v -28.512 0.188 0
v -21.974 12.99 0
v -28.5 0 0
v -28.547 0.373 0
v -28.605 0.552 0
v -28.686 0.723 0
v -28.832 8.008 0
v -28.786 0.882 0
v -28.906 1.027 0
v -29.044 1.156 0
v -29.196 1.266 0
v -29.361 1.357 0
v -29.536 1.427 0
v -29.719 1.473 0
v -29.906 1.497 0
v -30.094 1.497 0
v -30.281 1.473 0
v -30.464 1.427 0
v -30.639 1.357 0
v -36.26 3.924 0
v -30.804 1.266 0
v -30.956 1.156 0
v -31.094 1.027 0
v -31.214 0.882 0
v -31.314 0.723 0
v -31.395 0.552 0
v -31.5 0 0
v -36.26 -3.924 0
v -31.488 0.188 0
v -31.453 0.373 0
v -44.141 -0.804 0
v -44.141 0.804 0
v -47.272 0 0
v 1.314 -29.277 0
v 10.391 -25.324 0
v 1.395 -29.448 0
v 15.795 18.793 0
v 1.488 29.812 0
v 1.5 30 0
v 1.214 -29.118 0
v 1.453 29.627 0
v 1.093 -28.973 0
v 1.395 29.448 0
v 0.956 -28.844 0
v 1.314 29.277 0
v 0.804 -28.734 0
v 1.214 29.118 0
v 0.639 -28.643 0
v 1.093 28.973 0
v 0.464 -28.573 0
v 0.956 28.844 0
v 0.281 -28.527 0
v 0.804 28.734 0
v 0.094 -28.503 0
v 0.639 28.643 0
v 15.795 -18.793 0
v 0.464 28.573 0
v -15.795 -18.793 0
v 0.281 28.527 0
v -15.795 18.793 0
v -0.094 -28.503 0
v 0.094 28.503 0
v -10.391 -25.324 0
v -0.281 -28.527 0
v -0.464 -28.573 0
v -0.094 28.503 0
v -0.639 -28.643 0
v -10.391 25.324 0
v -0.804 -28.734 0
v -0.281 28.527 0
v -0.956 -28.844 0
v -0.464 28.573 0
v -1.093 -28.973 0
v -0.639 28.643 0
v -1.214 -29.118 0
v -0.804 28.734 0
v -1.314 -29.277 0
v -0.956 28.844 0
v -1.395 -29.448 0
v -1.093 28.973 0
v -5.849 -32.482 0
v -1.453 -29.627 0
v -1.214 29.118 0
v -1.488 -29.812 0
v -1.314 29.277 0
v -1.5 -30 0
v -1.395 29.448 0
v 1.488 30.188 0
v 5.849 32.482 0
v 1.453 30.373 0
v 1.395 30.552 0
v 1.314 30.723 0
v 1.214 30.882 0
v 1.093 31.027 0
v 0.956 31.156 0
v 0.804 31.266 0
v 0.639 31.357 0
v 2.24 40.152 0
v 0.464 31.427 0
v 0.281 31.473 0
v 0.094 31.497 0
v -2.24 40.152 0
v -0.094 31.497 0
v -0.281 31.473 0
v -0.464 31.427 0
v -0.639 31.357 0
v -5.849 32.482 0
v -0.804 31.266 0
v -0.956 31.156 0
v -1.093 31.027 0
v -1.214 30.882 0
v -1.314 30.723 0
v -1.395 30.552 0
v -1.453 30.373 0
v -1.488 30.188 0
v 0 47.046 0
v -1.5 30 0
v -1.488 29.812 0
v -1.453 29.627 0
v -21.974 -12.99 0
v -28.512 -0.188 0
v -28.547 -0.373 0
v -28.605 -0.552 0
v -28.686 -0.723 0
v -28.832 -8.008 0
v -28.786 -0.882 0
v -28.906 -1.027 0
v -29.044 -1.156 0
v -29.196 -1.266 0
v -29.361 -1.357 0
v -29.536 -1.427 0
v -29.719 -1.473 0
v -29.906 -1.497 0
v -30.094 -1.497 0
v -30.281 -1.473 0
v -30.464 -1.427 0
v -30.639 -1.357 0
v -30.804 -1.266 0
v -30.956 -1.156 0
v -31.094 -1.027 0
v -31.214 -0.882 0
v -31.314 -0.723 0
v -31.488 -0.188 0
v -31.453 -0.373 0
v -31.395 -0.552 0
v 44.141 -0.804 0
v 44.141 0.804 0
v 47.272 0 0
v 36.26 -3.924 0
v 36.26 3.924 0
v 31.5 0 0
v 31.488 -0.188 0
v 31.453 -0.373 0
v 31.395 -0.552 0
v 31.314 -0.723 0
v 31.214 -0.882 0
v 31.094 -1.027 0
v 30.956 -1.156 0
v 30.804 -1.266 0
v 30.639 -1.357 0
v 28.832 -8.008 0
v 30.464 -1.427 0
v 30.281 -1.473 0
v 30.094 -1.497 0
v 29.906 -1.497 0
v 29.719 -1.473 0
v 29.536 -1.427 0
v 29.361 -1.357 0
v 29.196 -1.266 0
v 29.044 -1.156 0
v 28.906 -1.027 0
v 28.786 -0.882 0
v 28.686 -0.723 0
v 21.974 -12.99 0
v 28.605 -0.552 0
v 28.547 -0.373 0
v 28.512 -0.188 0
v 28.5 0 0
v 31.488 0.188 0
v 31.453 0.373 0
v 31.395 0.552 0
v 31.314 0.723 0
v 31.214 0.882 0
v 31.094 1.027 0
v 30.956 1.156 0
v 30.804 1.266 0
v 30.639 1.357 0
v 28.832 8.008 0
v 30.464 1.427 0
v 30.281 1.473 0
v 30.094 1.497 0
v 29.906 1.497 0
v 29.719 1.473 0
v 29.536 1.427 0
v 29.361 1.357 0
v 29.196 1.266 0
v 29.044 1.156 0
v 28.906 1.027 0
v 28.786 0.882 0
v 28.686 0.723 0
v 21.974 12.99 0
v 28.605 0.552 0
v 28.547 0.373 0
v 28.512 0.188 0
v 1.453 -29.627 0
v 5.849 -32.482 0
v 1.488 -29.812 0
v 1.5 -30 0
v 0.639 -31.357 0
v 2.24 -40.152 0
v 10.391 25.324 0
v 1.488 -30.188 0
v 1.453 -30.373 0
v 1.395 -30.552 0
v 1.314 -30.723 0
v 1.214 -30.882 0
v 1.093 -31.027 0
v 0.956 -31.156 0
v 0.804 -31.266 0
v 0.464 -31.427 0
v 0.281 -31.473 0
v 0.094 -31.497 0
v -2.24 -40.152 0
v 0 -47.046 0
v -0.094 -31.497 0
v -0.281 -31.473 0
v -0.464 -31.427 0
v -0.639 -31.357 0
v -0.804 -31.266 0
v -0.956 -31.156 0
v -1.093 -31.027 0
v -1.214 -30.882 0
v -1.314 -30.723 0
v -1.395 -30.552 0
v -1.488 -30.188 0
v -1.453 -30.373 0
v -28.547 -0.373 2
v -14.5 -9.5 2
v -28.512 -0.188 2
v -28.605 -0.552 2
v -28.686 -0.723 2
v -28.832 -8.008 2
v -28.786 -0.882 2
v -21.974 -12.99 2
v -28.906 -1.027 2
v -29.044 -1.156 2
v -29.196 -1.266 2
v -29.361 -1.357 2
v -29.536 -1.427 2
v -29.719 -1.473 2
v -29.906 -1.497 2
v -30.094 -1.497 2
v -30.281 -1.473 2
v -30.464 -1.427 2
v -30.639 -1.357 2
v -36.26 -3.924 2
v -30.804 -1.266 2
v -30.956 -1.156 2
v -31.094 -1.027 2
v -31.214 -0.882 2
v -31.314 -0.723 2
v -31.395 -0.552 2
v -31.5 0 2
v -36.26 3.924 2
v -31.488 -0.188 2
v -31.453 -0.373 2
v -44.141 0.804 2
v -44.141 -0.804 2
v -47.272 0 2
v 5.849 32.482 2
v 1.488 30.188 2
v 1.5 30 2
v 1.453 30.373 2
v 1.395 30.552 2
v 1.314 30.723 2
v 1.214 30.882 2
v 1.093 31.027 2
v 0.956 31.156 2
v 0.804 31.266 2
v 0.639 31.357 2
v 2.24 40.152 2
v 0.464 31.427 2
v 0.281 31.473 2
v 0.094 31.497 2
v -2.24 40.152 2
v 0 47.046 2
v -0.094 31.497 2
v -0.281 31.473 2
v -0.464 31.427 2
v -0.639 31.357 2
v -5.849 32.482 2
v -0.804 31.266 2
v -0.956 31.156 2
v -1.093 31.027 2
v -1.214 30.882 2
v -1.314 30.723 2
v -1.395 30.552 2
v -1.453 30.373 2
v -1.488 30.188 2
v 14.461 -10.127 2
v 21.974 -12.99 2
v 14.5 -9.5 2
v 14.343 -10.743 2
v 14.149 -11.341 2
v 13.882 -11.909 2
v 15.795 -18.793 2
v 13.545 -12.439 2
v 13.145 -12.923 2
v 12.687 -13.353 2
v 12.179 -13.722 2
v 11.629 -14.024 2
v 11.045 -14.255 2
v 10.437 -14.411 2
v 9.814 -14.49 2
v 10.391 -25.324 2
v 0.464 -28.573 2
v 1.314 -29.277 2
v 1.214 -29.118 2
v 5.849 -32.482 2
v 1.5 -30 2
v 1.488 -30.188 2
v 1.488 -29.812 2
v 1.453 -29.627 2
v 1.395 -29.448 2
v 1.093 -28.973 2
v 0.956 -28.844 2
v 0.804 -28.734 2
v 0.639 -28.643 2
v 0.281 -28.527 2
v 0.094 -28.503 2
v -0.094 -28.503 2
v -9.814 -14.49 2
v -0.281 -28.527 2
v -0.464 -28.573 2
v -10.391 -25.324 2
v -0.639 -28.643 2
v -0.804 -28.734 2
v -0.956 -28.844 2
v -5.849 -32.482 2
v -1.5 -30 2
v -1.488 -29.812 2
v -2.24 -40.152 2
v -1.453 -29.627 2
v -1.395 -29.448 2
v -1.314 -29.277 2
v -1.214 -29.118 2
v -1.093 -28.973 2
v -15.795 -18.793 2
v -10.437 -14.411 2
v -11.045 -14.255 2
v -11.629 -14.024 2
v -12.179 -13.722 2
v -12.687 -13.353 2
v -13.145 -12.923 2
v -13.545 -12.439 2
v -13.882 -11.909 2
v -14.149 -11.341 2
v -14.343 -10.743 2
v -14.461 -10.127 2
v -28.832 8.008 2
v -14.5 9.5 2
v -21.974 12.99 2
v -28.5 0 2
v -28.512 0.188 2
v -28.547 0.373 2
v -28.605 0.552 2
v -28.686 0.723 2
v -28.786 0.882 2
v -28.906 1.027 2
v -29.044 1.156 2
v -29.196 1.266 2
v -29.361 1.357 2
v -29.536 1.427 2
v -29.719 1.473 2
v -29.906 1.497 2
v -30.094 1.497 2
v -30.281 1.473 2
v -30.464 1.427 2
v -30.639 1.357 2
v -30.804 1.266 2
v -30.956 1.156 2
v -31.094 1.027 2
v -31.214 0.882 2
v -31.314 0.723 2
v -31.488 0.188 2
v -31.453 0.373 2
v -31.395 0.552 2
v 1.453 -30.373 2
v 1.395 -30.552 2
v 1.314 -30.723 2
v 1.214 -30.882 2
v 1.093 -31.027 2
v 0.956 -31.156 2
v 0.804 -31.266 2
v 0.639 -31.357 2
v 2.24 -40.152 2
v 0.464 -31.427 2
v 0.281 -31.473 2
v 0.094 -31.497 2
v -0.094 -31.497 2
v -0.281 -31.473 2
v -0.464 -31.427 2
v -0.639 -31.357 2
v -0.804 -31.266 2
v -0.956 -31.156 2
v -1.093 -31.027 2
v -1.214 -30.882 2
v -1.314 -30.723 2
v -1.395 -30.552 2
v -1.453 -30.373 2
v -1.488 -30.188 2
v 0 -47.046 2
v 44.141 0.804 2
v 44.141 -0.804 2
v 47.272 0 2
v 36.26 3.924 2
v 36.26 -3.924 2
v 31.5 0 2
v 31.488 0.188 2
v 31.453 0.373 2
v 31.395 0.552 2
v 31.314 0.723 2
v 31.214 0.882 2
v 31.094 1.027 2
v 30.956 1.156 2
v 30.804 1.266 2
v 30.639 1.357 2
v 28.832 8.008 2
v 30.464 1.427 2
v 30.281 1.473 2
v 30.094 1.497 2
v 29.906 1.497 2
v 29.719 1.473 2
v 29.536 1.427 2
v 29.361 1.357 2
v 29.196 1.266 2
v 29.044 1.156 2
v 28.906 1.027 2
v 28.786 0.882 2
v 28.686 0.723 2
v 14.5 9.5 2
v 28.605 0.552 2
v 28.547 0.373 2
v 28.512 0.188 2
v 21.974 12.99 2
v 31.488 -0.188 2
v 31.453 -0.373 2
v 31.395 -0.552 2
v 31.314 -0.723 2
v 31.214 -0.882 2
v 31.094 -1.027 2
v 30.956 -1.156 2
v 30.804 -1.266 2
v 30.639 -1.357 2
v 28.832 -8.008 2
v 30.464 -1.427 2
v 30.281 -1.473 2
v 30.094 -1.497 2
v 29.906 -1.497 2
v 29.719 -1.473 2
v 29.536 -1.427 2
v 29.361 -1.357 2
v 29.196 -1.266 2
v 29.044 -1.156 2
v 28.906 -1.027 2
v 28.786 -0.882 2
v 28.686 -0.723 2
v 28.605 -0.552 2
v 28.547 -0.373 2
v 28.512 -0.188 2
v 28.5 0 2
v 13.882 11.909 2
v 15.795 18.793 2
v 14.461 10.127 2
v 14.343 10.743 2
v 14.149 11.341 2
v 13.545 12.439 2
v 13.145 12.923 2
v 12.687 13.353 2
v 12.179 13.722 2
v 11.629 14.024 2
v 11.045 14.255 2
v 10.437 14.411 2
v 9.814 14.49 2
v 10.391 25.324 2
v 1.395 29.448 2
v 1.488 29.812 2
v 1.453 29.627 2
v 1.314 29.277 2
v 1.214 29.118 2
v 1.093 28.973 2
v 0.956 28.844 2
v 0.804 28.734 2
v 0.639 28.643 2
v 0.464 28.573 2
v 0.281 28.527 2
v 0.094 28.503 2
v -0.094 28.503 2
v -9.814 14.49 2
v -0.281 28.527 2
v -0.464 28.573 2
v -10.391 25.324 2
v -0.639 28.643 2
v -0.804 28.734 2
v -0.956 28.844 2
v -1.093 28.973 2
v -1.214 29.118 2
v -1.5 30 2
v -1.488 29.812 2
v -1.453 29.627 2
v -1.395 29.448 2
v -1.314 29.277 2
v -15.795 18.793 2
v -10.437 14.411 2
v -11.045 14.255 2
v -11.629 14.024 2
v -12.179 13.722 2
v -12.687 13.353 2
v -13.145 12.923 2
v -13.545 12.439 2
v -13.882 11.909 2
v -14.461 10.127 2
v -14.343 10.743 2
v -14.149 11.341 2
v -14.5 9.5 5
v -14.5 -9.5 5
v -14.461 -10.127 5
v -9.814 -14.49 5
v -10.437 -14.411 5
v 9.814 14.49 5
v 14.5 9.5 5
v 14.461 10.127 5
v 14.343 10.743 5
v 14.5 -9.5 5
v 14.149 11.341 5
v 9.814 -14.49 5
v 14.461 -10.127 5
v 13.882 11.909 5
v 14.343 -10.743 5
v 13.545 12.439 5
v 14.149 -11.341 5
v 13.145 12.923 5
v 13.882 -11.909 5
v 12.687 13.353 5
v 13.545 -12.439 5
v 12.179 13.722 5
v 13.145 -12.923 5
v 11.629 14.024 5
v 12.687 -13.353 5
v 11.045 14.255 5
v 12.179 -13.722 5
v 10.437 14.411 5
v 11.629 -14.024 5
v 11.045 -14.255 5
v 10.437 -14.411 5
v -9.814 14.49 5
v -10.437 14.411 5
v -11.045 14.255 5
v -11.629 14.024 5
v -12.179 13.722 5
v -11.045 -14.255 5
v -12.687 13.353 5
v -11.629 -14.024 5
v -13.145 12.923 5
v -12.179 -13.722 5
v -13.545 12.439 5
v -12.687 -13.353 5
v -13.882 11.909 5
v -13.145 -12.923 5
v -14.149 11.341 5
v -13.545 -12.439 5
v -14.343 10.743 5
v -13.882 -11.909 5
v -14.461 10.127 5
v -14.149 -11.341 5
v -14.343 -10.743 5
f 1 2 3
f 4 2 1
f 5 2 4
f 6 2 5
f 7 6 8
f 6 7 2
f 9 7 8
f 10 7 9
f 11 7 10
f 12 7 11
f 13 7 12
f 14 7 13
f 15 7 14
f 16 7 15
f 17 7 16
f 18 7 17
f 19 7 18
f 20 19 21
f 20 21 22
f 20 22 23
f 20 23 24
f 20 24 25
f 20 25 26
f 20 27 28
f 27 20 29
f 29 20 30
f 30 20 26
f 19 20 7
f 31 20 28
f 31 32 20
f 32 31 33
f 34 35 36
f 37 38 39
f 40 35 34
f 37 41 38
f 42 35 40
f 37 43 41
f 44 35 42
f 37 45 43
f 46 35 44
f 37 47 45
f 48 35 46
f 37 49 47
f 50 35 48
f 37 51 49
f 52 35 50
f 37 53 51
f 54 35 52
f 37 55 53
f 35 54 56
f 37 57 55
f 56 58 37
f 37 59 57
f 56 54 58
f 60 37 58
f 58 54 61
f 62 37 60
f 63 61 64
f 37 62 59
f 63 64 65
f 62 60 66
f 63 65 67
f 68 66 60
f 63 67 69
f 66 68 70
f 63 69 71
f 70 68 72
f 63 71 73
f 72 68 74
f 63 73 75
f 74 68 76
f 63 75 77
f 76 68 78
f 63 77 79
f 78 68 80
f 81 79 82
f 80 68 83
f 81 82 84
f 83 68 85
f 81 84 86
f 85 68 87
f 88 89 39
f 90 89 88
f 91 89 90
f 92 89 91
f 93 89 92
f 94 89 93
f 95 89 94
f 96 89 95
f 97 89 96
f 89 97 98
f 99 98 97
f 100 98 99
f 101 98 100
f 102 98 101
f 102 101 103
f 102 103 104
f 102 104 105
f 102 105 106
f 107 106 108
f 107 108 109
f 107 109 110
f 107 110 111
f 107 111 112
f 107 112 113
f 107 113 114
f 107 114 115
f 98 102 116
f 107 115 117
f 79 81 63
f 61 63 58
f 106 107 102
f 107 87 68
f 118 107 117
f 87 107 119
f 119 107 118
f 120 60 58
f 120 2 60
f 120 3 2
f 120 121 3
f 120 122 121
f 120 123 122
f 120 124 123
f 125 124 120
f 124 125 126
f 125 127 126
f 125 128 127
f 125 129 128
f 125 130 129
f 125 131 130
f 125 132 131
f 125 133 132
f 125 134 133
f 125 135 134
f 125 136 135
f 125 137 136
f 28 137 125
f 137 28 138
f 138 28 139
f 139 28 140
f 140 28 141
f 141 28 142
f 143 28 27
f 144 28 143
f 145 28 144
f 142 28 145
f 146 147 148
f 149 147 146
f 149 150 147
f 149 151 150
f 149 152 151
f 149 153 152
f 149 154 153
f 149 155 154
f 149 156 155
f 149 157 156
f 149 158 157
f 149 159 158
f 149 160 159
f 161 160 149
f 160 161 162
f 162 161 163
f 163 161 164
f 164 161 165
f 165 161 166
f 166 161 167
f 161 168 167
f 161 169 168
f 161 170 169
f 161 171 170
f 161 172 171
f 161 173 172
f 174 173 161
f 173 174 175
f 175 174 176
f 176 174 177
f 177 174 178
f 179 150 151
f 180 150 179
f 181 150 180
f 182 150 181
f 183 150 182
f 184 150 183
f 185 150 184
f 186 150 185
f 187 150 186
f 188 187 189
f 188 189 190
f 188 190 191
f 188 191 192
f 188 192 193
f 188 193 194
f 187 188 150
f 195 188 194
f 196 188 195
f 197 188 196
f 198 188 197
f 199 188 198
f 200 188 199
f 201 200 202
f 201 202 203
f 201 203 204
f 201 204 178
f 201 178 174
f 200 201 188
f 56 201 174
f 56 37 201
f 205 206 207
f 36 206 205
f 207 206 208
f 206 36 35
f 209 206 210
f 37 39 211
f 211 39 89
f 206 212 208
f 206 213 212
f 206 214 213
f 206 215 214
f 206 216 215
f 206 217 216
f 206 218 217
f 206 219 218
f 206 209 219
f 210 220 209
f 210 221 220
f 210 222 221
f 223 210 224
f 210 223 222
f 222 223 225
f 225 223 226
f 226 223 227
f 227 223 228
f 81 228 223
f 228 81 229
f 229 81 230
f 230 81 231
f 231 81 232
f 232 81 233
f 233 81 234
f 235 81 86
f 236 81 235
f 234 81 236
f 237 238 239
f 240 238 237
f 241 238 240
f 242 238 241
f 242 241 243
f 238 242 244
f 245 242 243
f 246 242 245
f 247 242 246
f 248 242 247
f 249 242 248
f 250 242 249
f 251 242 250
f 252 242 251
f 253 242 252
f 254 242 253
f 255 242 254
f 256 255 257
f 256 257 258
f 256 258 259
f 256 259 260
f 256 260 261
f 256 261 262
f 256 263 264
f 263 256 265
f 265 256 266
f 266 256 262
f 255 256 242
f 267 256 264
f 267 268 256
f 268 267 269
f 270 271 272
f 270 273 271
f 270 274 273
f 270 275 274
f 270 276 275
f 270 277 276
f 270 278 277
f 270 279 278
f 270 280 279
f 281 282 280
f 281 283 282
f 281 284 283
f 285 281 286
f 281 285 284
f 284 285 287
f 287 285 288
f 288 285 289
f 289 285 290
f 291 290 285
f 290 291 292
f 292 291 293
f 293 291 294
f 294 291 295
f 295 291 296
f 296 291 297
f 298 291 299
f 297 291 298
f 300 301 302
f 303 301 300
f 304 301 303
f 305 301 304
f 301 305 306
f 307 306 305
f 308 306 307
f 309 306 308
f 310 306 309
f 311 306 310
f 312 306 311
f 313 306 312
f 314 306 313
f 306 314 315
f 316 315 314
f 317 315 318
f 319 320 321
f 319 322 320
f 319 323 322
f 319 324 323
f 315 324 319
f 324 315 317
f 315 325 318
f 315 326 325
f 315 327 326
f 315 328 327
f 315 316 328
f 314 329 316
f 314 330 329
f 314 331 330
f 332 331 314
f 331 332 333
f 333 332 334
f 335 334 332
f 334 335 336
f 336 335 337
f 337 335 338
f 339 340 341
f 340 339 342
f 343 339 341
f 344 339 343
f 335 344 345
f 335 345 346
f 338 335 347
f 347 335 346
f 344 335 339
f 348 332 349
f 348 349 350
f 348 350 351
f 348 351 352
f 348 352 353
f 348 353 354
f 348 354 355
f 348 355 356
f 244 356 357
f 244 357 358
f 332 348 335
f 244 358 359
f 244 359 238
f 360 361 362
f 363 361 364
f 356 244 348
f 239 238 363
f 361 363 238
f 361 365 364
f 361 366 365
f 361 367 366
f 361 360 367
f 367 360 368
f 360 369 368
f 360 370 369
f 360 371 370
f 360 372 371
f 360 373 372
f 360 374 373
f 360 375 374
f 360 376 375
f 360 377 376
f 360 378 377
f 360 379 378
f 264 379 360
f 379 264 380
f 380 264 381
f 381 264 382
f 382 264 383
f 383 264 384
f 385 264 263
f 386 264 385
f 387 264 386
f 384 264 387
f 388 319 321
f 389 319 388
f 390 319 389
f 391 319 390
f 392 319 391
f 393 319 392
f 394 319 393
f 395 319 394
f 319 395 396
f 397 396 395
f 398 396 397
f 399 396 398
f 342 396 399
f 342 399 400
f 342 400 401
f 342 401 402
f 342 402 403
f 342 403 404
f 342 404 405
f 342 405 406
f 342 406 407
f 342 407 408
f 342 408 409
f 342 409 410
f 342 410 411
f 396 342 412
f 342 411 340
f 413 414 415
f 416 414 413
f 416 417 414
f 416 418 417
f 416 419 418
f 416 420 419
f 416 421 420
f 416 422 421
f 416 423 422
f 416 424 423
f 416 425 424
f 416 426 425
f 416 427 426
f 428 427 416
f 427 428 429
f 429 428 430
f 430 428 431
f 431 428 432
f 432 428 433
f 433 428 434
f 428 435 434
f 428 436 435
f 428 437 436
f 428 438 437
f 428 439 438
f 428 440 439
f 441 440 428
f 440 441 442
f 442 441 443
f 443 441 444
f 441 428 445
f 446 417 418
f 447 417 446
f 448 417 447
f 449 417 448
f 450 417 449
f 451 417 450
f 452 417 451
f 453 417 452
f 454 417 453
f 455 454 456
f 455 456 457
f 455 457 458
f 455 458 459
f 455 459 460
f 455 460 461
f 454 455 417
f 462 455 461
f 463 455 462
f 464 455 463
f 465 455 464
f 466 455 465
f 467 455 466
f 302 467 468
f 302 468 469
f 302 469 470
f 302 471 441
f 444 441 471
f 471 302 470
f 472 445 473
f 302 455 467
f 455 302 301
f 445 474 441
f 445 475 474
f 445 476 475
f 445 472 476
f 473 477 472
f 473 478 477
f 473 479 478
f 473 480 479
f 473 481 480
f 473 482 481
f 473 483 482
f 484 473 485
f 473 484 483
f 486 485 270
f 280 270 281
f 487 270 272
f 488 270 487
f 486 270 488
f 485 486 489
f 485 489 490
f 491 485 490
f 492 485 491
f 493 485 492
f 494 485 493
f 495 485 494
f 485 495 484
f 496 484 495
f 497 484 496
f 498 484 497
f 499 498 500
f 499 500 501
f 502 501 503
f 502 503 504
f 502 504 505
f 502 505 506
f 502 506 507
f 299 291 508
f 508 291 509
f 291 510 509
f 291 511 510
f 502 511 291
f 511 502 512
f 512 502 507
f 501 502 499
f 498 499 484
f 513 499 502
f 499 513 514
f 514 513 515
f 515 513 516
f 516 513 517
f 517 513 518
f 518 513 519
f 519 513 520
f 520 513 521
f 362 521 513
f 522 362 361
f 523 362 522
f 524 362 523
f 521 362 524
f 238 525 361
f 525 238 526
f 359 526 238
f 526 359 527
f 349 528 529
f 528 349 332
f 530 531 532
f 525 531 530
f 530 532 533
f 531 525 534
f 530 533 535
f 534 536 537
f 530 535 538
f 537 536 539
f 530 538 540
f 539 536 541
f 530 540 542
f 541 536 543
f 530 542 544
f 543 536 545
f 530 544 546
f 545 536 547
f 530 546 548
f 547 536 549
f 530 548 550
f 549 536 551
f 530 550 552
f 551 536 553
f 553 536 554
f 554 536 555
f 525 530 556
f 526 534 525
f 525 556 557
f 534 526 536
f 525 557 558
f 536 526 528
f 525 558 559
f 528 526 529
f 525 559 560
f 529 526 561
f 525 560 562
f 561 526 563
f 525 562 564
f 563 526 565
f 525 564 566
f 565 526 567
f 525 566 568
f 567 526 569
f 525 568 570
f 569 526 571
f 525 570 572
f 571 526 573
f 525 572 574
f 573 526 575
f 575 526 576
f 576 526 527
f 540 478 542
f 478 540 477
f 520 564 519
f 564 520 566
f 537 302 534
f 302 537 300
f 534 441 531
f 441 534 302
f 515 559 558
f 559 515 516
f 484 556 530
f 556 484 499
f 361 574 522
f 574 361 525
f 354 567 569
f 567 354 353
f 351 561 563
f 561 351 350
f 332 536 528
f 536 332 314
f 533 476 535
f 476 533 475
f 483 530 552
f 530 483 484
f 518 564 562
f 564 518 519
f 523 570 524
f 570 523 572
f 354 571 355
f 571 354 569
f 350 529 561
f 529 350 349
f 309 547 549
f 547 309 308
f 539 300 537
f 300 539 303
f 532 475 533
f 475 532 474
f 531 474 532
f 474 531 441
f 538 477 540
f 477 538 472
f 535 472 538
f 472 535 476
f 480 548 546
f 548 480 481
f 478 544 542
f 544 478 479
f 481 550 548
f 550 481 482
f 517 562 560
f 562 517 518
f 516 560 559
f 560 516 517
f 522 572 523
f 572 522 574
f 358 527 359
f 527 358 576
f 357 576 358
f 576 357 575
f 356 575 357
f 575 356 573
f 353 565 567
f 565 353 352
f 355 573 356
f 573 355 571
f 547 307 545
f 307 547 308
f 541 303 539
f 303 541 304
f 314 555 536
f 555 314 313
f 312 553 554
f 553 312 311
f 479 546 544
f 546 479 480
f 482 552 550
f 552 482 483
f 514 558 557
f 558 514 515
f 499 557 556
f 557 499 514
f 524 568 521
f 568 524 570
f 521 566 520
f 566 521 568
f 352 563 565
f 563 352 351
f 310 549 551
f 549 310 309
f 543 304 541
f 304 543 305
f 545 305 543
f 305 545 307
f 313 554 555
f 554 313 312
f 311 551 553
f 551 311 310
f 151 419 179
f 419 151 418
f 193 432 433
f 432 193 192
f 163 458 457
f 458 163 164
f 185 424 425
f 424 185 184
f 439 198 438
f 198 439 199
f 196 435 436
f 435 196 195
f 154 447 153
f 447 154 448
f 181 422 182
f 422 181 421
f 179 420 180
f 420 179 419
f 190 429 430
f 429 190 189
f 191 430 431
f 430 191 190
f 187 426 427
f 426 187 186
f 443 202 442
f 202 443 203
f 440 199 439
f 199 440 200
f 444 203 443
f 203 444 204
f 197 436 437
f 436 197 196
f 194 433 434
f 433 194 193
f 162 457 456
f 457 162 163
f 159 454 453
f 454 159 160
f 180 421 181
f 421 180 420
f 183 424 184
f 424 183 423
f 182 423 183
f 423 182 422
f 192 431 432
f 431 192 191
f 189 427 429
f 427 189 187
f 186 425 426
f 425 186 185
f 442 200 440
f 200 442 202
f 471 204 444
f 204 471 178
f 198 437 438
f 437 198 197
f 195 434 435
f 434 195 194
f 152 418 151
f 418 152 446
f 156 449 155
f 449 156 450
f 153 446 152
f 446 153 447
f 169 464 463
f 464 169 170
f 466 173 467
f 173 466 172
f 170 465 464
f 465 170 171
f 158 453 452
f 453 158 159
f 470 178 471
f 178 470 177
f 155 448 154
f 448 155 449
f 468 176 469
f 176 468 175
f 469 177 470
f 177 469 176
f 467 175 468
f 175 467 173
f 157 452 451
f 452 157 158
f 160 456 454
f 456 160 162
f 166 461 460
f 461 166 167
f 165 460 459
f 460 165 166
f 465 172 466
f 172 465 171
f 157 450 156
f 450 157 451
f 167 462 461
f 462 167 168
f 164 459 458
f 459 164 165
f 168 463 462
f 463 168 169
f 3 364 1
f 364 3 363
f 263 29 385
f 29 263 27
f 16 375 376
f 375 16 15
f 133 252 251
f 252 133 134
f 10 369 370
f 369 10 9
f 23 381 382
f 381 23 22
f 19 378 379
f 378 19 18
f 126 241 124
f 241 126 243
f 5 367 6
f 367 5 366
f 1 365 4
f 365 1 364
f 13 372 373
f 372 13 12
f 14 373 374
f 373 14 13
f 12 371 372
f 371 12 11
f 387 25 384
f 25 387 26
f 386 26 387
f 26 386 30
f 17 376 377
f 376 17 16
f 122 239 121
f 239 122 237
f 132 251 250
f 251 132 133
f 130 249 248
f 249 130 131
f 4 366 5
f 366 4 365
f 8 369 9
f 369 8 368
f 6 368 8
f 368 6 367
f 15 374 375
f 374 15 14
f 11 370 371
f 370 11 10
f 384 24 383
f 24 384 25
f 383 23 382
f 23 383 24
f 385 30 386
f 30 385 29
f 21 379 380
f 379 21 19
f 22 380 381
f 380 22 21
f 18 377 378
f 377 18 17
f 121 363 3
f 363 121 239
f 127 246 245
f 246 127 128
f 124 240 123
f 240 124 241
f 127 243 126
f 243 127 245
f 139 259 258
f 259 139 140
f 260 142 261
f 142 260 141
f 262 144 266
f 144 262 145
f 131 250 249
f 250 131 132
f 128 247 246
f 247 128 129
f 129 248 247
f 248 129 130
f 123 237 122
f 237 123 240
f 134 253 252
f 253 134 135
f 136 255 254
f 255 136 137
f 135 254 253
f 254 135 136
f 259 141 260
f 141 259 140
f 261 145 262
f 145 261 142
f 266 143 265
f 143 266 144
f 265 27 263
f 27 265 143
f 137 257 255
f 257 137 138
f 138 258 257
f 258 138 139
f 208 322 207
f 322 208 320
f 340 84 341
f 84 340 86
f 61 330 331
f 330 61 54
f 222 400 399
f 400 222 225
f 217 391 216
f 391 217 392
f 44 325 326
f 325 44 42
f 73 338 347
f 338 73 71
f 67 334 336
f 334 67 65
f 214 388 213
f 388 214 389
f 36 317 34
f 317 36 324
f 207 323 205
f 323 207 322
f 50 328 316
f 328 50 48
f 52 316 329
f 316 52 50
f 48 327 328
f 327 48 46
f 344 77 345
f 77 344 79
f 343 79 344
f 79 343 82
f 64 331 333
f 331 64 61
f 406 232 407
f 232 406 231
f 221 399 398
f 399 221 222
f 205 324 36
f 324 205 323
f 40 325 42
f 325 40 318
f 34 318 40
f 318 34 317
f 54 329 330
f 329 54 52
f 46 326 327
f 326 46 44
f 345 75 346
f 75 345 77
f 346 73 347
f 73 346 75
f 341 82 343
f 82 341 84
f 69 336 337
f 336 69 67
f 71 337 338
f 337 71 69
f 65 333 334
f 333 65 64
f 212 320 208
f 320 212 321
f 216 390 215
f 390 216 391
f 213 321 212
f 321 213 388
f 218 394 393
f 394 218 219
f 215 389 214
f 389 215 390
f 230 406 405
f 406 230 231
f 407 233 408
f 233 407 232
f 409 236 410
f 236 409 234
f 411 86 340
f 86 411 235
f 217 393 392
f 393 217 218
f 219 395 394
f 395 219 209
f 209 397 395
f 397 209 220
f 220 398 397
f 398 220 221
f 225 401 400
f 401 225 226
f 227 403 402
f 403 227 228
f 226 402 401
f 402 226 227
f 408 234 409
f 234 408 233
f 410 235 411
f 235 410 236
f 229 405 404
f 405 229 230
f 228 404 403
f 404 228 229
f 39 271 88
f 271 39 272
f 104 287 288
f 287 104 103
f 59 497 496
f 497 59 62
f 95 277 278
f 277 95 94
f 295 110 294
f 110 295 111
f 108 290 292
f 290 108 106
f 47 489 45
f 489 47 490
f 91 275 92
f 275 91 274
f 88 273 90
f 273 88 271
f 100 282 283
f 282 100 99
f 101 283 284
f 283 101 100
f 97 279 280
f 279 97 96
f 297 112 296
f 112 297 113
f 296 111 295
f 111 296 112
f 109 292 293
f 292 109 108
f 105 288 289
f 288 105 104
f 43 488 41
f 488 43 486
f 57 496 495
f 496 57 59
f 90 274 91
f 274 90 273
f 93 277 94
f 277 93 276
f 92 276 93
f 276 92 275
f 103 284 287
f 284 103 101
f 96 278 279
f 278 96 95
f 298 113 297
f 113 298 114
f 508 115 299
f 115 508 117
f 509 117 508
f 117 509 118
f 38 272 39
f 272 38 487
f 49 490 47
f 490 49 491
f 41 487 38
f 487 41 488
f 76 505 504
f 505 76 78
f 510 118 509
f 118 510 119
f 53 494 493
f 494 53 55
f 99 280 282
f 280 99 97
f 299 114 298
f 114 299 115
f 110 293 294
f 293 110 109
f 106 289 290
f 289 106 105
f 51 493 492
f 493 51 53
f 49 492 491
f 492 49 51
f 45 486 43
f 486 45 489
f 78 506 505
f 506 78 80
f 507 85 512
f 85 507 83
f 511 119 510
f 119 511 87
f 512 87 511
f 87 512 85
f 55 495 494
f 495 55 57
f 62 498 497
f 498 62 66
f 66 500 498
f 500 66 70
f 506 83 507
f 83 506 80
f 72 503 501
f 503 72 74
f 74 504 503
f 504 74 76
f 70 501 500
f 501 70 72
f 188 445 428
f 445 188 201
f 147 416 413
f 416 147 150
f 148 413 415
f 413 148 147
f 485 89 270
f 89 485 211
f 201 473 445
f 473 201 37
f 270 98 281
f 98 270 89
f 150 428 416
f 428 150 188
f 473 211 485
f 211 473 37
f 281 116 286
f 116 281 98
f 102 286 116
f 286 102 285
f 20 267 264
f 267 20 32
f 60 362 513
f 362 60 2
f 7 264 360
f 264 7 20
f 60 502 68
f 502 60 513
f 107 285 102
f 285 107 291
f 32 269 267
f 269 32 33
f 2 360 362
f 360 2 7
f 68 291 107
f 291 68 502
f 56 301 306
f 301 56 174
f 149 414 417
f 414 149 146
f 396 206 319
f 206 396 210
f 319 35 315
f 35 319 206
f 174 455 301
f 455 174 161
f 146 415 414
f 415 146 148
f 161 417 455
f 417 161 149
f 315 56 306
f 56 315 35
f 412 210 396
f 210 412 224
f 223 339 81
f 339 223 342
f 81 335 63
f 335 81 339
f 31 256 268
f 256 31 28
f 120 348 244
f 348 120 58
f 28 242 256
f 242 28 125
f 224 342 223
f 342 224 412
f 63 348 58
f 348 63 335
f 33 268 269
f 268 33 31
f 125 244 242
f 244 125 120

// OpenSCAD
$fn = 50;


difference() {
	union() {
		rotate(a = [0, 0, 45]) {
			hull() {
				translate(v = [-32.0000000000, 32.0000000000, 0]) {
					cylinder(h = 2, r = 5);
				}
				translate(v = [32.0000000000, 32.0000000000, 0]) {
					cylinder(h = 2, r = 5);
				}
				translate(v = [-32.0000000000, -32.0000000000, 0]) {
					cylinder(h = 2, r = 5);
				}
				translate(v = [32.0000000000, -32.0000000000, 0]) {
					cylinder(h = 2, r = 5);
				}
			}
		}
		hull() {
			translate(v = [-9.5000000000, 9.5000000000, 0]) {
				cylinder(h = 5, r = 5);
			}
			translate(v = [9.5000000000, 9.5000000000, 0]) {
				cylinder(h = 5, r = 5);
			}
			translate(v = [-9.5000000000, -9.5000000000, 0]) {
				cylinder(h = 5, r = 5);
			}
			translate(v = [9.5000000000, -9.5000000000, 0]) {
				cylinder(h = 5, r = 5);
			}
		}
	}
	union() {
		translate(v = [30, 0, -100.0000000000]) {
			cylinder(h = 200, r = 1.5000000000);
		}
		translate(v = [-30, 0, -100.0000000000]) {
			cylinder(h = 200, r = 1.5000000000);
		}
		translate(v = [0, -30, -100.0000000000]) {
			cylinder(h = 200, r = 1.5000000000);
		}
		translate(v = [0, 30, -100.0000000000]) {
			cylinder(h = 200, r = 1.5000000000);
		}
		translate(v = [65, 65, 0.0000000000]) {
			cylinder(h = 2, r = 67.5000000000);
		}
		translate(v = [-65, 65, 0.0000000000]) {
			cylinder(h = 2, r = 67.5000000000);
		}
		translate(v = [65, -65, 0.0000000000]) {
			cylinder(h = 2, r = 67.5000000000);
		}
		translate(v = [-65, -65, 0.0000000000]) {
			cylinder(h = 2, r = 67.5000000000);
		}
		translate(v = [65, 65, 0.0000000000]) {
			cylinder(h = 2, r = 67.5000000000);
		}
		translate(v = [-65, 65, 0.0000000000]) {
			cylinder(h = 2, r = 67.5000000000);
		}
		translate(v = [65, -65, 0.0000000000]) {
			cylinder(h = 2, r = 67.5000000000);
		}
		translate(v = [-65, -65, 0.0000000000]) {
			cylinder(h = 2, r = 67.5000000000);
		}
	}
}
